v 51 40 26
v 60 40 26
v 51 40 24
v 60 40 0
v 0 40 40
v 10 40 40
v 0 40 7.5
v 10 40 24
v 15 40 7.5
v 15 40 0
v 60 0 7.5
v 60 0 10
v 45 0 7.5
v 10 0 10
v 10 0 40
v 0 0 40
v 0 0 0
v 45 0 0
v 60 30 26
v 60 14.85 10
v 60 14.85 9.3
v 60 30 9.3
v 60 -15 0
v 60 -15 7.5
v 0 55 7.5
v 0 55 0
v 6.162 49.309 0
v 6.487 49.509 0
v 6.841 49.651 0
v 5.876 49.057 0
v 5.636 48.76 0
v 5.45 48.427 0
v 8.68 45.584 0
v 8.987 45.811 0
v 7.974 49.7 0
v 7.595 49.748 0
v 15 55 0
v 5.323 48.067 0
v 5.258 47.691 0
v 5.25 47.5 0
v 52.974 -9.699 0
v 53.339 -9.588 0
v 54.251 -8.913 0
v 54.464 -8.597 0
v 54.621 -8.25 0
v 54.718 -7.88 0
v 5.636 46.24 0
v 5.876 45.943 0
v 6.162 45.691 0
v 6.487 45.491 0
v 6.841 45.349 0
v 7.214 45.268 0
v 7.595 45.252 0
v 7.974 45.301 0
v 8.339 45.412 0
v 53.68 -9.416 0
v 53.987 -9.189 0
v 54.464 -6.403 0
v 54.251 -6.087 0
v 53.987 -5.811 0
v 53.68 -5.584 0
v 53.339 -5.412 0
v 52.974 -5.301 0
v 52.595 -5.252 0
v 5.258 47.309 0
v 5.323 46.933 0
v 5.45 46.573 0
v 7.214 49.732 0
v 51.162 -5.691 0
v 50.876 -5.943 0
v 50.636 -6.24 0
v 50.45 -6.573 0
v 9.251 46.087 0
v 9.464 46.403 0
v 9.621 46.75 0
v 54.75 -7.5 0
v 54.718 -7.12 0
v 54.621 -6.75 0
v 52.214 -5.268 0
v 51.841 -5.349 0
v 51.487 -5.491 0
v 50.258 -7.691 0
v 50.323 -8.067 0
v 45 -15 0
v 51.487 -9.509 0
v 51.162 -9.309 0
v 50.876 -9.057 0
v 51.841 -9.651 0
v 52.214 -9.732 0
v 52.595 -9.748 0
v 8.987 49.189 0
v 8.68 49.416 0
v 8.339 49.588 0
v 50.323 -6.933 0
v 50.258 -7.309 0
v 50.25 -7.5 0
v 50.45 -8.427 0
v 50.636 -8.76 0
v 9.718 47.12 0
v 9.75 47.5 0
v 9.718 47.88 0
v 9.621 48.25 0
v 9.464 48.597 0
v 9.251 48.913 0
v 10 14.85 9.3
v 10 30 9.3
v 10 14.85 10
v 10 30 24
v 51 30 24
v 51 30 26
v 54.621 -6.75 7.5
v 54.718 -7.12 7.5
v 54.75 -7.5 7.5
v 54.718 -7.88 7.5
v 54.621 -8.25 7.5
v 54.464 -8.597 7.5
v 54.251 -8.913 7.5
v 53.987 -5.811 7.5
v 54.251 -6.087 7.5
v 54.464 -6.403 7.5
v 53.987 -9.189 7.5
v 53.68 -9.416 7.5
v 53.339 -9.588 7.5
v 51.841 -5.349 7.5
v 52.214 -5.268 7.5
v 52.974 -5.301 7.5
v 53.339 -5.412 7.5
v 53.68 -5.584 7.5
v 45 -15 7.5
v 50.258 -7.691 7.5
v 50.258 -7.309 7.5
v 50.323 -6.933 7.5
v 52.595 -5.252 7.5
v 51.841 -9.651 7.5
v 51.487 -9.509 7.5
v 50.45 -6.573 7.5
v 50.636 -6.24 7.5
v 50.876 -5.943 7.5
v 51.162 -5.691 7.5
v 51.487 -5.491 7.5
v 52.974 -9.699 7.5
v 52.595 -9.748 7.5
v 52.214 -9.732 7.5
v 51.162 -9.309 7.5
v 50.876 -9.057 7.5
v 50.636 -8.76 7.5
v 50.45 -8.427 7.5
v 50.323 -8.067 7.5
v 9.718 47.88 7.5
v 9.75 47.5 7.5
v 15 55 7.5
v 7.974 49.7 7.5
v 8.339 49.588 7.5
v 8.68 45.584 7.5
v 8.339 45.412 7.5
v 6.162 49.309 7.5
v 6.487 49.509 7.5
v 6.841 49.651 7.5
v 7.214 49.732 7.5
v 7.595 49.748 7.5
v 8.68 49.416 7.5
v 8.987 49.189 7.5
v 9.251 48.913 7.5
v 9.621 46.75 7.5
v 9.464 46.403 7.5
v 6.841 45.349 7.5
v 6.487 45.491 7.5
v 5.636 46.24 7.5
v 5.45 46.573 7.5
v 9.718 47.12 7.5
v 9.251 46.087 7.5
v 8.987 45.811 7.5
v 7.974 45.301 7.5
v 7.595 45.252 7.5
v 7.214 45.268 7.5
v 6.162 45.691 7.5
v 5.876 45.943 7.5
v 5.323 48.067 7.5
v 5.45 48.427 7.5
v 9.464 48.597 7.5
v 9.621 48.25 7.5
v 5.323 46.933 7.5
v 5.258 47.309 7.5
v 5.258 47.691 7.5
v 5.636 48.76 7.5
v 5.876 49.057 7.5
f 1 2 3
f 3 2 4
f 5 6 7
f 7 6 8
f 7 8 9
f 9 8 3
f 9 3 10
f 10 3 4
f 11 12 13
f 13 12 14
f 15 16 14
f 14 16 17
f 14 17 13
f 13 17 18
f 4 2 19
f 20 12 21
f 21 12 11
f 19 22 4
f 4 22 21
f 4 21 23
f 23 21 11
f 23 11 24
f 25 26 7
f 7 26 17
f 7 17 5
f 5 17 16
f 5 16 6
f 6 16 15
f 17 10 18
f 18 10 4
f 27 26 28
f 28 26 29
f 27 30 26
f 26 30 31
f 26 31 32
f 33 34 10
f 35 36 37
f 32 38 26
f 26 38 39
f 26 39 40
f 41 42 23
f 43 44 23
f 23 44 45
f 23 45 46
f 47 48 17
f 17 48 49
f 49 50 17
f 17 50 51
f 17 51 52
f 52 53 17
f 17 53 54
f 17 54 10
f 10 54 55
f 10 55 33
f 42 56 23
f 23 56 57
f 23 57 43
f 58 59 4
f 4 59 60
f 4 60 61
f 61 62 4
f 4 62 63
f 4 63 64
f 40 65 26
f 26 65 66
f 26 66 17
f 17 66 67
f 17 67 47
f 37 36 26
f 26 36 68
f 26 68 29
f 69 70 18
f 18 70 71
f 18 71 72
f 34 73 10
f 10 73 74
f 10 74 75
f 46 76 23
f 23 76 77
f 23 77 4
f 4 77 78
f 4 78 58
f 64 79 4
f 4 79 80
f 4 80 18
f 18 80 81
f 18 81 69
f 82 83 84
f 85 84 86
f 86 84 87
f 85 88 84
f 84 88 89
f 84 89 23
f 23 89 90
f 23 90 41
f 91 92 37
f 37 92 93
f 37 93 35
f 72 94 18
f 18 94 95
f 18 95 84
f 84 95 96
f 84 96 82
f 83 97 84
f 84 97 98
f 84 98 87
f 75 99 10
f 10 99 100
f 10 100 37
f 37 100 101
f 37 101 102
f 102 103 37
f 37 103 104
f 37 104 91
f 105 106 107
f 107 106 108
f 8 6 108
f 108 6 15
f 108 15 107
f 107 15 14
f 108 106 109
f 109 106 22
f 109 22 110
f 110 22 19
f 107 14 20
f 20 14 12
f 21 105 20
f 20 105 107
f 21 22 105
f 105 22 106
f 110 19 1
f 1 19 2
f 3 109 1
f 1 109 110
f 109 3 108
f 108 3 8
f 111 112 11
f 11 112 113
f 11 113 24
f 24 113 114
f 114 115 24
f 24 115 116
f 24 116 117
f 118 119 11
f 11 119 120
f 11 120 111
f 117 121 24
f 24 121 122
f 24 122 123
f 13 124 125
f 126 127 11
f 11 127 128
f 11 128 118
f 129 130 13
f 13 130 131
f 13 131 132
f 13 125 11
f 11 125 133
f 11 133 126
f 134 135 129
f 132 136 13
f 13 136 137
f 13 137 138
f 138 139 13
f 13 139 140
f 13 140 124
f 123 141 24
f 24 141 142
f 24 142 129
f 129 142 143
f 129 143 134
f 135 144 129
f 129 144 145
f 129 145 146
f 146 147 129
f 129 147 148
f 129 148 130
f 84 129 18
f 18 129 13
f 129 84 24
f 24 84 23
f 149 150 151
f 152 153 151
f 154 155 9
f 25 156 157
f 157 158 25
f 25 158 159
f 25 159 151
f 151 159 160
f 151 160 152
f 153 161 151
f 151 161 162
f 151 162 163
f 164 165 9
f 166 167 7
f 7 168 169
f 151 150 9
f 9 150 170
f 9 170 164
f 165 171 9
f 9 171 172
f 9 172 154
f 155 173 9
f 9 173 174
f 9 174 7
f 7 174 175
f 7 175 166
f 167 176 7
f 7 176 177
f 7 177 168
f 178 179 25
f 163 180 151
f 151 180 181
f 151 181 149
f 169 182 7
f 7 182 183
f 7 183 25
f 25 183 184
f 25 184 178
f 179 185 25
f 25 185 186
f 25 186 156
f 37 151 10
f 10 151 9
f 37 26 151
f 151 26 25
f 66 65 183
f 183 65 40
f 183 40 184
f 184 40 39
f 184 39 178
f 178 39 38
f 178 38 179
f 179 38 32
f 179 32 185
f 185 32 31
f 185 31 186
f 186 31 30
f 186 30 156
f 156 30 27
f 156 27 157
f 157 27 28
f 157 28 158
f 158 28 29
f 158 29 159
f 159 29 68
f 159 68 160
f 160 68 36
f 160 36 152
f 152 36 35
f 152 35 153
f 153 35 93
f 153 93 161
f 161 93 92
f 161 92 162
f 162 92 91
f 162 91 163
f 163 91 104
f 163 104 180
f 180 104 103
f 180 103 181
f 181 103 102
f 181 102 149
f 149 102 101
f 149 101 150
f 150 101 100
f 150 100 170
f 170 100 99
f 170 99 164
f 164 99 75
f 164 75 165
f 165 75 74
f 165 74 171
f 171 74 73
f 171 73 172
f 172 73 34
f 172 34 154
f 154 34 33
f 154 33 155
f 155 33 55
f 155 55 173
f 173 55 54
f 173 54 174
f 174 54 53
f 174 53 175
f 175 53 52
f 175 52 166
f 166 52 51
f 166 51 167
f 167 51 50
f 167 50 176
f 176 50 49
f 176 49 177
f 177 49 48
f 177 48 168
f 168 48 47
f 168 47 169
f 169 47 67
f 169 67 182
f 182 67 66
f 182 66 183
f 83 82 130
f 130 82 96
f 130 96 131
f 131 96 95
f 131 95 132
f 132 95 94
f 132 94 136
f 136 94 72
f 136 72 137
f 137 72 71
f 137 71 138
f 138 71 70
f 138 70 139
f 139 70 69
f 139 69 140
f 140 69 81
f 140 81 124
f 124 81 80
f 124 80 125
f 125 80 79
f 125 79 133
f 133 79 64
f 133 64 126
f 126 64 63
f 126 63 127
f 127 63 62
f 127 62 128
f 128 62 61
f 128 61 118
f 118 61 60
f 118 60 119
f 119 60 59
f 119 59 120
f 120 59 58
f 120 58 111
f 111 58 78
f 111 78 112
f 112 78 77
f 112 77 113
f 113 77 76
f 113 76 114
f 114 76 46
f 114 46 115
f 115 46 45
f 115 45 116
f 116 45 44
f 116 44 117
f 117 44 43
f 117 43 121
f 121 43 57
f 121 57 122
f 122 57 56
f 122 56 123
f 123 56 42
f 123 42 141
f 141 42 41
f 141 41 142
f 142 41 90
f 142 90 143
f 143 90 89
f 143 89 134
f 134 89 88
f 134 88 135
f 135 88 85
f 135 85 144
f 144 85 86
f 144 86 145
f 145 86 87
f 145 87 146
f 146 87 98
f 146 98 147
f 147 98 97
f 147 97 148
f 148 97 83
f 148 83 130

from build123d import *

# Parameters (mm, degrees)
SKETCH1_W           = 60
SKETCH1_H           = 40
BOSS_EXTRUDE1_DEPTH = 40
SKETCH2_W           = 50
SKETCH2_H           = 30
CUT_EXTRUDE1_DEPTH  = 30
SKETCH3_W           = 50
SKETCH3_H           = 15.15
CUT_EXTRUDE2_DEPTH  = 0.7
SKETCH4_W           = 50
SKETCH4_H           = 10
CUT_EXTRUDE3_DEPTH  = 14
SKETCH5_W           = 41
SKETCH5_H           = 10
CUT_EXTRUDE4_DEPTH  = 2
SKETCH6_W           = 15
SKETCH6_H           = 7.5
BOSS_EXTRUDE3_DEPTH = 15
SKETCH7_W           = 15
SKETCH7_H           = 7.5
BOSS_EXTRUDE4_DEPTH = 15
CUT_EXTRUDE5_REACH  = 9.5
SKETCH8_R           = 2.25


with BuildPart() as part:
    # Sketch1 → Boss-Extrude1 (new body)
    with BuildSketch(Plane.XY):
        with Locations((30, 20)):
            Rectangle(SKETCH1_W, SKETCH1_H)
    extrude(amount=BOSS_EXTRUDE1_DEPTH)

    # Sketch2 → Cut-Extrude1 (cut)
    with BuildSketch(Plane.XY.offset(40)):
        with Locations((35, 15)):
            Rectangle(SKETCH2_W, SKETCH2_H)
    extrude(amount=-CUT_EXTRUDE1_DEPTH, mode=Mode.SUBTRACT)

    # Sketch3 → Cut-Extrude2 (cut)
    with BuildSketch(Plane.XY.offset(10)):
        with Locations((35, 22.425)):
            Rectangle(SKETCH3_W, SKETCH3_H)
    extrude(amount=-CUT_EXTRUDE2_DEPTH, mode=Mode.SUBTRACT)

    # Sketch4 → Cut-Extrude3 (cut)
    with BuildSketch(Plane.XY.offset(40)):
        with Locations((35, 35)):
            Rectangle(SKETCH4_W, SKETCH4_H)
    extrude(amount=-CUT_EXTRUDE3_DEPTH, mode=Mode.SUBTRACT)

    # Sketch5 → Cut-Extrude4 (cut)
    with BuildSketch(Plane.XY.offset(26)):
        with Locations((30.5, 35)):
            Rectangle(SKETCH5_W, SKETCH5_H)
    extrude(amount=-CUT_EXTRUDE4_DEPTH, mode=Mode.SUBTRACT)

    # Sketch6 → Boss-Extrude3 (add)
    with BuildSketch(Plane.XZ):
        with Locations((52.5, 3.75)):
            Rectangle(SKETCH6_W, SKETCH6_H)
    extrude(amount=BOSS_EXTRUDE3_DEPTH)

    # Sketch7 → Boss-Extrude4 (add)
    with BuildSketch(Plane(origin=(0, 40, 0), x_dir=(1, 0, 0), z_dir=(0, 1, 0))):
        with Locations((7.5, -3.75)):
            Rectangle(SKETCH7_W, SKETCH7_H)
    extrude(amount=BOSS_EXTRUDE4_DEPTH)

    # Sketch8 → Cut-Extrude5 (cut, up to next)
    with BuildSketch(Plane.XY.offset(7.5), mode=Mode.PRIVATE) as cut_extrude5_sk1:
        with Locations((52.5, -7.5)):
            Circle(SKETCH8_R)
    cut_extrude5_tool1 = extrude(cut_extrude5_sk1.sketch, amount=-CUT_EXTRUDE5_REACH, mode=Mode.PRIVATE) & part.part
    add(cut_extrude5_tool1.solids().sort_by_distance((52.5, -7.5, 7.5))[0], mode=Mode.SUBTRACT)
    # Sketch8 → Cut-Extrude5 (cut, up to next)
    with BuildSketch(Plane.XY.offset(7.5), mode=Mode.PRIVATE) as cut_extrude5_sk2:
        with Locations((7.5, 47.5)):
            Circle(SKETCH8_R)
    cut_extrude5_tool2 = extrude(cut_extrude5_sk2.sketch, amount=-CUT_EXTRUDE5_REACH, mode=Mode.PRIVATE) & part.part
    add(cut_extrude5_tool2.solids().sort_by_distance((7.5, 47.5, 7.5))[0], mode=Mode.SUBTRACT)


solid = part.part
